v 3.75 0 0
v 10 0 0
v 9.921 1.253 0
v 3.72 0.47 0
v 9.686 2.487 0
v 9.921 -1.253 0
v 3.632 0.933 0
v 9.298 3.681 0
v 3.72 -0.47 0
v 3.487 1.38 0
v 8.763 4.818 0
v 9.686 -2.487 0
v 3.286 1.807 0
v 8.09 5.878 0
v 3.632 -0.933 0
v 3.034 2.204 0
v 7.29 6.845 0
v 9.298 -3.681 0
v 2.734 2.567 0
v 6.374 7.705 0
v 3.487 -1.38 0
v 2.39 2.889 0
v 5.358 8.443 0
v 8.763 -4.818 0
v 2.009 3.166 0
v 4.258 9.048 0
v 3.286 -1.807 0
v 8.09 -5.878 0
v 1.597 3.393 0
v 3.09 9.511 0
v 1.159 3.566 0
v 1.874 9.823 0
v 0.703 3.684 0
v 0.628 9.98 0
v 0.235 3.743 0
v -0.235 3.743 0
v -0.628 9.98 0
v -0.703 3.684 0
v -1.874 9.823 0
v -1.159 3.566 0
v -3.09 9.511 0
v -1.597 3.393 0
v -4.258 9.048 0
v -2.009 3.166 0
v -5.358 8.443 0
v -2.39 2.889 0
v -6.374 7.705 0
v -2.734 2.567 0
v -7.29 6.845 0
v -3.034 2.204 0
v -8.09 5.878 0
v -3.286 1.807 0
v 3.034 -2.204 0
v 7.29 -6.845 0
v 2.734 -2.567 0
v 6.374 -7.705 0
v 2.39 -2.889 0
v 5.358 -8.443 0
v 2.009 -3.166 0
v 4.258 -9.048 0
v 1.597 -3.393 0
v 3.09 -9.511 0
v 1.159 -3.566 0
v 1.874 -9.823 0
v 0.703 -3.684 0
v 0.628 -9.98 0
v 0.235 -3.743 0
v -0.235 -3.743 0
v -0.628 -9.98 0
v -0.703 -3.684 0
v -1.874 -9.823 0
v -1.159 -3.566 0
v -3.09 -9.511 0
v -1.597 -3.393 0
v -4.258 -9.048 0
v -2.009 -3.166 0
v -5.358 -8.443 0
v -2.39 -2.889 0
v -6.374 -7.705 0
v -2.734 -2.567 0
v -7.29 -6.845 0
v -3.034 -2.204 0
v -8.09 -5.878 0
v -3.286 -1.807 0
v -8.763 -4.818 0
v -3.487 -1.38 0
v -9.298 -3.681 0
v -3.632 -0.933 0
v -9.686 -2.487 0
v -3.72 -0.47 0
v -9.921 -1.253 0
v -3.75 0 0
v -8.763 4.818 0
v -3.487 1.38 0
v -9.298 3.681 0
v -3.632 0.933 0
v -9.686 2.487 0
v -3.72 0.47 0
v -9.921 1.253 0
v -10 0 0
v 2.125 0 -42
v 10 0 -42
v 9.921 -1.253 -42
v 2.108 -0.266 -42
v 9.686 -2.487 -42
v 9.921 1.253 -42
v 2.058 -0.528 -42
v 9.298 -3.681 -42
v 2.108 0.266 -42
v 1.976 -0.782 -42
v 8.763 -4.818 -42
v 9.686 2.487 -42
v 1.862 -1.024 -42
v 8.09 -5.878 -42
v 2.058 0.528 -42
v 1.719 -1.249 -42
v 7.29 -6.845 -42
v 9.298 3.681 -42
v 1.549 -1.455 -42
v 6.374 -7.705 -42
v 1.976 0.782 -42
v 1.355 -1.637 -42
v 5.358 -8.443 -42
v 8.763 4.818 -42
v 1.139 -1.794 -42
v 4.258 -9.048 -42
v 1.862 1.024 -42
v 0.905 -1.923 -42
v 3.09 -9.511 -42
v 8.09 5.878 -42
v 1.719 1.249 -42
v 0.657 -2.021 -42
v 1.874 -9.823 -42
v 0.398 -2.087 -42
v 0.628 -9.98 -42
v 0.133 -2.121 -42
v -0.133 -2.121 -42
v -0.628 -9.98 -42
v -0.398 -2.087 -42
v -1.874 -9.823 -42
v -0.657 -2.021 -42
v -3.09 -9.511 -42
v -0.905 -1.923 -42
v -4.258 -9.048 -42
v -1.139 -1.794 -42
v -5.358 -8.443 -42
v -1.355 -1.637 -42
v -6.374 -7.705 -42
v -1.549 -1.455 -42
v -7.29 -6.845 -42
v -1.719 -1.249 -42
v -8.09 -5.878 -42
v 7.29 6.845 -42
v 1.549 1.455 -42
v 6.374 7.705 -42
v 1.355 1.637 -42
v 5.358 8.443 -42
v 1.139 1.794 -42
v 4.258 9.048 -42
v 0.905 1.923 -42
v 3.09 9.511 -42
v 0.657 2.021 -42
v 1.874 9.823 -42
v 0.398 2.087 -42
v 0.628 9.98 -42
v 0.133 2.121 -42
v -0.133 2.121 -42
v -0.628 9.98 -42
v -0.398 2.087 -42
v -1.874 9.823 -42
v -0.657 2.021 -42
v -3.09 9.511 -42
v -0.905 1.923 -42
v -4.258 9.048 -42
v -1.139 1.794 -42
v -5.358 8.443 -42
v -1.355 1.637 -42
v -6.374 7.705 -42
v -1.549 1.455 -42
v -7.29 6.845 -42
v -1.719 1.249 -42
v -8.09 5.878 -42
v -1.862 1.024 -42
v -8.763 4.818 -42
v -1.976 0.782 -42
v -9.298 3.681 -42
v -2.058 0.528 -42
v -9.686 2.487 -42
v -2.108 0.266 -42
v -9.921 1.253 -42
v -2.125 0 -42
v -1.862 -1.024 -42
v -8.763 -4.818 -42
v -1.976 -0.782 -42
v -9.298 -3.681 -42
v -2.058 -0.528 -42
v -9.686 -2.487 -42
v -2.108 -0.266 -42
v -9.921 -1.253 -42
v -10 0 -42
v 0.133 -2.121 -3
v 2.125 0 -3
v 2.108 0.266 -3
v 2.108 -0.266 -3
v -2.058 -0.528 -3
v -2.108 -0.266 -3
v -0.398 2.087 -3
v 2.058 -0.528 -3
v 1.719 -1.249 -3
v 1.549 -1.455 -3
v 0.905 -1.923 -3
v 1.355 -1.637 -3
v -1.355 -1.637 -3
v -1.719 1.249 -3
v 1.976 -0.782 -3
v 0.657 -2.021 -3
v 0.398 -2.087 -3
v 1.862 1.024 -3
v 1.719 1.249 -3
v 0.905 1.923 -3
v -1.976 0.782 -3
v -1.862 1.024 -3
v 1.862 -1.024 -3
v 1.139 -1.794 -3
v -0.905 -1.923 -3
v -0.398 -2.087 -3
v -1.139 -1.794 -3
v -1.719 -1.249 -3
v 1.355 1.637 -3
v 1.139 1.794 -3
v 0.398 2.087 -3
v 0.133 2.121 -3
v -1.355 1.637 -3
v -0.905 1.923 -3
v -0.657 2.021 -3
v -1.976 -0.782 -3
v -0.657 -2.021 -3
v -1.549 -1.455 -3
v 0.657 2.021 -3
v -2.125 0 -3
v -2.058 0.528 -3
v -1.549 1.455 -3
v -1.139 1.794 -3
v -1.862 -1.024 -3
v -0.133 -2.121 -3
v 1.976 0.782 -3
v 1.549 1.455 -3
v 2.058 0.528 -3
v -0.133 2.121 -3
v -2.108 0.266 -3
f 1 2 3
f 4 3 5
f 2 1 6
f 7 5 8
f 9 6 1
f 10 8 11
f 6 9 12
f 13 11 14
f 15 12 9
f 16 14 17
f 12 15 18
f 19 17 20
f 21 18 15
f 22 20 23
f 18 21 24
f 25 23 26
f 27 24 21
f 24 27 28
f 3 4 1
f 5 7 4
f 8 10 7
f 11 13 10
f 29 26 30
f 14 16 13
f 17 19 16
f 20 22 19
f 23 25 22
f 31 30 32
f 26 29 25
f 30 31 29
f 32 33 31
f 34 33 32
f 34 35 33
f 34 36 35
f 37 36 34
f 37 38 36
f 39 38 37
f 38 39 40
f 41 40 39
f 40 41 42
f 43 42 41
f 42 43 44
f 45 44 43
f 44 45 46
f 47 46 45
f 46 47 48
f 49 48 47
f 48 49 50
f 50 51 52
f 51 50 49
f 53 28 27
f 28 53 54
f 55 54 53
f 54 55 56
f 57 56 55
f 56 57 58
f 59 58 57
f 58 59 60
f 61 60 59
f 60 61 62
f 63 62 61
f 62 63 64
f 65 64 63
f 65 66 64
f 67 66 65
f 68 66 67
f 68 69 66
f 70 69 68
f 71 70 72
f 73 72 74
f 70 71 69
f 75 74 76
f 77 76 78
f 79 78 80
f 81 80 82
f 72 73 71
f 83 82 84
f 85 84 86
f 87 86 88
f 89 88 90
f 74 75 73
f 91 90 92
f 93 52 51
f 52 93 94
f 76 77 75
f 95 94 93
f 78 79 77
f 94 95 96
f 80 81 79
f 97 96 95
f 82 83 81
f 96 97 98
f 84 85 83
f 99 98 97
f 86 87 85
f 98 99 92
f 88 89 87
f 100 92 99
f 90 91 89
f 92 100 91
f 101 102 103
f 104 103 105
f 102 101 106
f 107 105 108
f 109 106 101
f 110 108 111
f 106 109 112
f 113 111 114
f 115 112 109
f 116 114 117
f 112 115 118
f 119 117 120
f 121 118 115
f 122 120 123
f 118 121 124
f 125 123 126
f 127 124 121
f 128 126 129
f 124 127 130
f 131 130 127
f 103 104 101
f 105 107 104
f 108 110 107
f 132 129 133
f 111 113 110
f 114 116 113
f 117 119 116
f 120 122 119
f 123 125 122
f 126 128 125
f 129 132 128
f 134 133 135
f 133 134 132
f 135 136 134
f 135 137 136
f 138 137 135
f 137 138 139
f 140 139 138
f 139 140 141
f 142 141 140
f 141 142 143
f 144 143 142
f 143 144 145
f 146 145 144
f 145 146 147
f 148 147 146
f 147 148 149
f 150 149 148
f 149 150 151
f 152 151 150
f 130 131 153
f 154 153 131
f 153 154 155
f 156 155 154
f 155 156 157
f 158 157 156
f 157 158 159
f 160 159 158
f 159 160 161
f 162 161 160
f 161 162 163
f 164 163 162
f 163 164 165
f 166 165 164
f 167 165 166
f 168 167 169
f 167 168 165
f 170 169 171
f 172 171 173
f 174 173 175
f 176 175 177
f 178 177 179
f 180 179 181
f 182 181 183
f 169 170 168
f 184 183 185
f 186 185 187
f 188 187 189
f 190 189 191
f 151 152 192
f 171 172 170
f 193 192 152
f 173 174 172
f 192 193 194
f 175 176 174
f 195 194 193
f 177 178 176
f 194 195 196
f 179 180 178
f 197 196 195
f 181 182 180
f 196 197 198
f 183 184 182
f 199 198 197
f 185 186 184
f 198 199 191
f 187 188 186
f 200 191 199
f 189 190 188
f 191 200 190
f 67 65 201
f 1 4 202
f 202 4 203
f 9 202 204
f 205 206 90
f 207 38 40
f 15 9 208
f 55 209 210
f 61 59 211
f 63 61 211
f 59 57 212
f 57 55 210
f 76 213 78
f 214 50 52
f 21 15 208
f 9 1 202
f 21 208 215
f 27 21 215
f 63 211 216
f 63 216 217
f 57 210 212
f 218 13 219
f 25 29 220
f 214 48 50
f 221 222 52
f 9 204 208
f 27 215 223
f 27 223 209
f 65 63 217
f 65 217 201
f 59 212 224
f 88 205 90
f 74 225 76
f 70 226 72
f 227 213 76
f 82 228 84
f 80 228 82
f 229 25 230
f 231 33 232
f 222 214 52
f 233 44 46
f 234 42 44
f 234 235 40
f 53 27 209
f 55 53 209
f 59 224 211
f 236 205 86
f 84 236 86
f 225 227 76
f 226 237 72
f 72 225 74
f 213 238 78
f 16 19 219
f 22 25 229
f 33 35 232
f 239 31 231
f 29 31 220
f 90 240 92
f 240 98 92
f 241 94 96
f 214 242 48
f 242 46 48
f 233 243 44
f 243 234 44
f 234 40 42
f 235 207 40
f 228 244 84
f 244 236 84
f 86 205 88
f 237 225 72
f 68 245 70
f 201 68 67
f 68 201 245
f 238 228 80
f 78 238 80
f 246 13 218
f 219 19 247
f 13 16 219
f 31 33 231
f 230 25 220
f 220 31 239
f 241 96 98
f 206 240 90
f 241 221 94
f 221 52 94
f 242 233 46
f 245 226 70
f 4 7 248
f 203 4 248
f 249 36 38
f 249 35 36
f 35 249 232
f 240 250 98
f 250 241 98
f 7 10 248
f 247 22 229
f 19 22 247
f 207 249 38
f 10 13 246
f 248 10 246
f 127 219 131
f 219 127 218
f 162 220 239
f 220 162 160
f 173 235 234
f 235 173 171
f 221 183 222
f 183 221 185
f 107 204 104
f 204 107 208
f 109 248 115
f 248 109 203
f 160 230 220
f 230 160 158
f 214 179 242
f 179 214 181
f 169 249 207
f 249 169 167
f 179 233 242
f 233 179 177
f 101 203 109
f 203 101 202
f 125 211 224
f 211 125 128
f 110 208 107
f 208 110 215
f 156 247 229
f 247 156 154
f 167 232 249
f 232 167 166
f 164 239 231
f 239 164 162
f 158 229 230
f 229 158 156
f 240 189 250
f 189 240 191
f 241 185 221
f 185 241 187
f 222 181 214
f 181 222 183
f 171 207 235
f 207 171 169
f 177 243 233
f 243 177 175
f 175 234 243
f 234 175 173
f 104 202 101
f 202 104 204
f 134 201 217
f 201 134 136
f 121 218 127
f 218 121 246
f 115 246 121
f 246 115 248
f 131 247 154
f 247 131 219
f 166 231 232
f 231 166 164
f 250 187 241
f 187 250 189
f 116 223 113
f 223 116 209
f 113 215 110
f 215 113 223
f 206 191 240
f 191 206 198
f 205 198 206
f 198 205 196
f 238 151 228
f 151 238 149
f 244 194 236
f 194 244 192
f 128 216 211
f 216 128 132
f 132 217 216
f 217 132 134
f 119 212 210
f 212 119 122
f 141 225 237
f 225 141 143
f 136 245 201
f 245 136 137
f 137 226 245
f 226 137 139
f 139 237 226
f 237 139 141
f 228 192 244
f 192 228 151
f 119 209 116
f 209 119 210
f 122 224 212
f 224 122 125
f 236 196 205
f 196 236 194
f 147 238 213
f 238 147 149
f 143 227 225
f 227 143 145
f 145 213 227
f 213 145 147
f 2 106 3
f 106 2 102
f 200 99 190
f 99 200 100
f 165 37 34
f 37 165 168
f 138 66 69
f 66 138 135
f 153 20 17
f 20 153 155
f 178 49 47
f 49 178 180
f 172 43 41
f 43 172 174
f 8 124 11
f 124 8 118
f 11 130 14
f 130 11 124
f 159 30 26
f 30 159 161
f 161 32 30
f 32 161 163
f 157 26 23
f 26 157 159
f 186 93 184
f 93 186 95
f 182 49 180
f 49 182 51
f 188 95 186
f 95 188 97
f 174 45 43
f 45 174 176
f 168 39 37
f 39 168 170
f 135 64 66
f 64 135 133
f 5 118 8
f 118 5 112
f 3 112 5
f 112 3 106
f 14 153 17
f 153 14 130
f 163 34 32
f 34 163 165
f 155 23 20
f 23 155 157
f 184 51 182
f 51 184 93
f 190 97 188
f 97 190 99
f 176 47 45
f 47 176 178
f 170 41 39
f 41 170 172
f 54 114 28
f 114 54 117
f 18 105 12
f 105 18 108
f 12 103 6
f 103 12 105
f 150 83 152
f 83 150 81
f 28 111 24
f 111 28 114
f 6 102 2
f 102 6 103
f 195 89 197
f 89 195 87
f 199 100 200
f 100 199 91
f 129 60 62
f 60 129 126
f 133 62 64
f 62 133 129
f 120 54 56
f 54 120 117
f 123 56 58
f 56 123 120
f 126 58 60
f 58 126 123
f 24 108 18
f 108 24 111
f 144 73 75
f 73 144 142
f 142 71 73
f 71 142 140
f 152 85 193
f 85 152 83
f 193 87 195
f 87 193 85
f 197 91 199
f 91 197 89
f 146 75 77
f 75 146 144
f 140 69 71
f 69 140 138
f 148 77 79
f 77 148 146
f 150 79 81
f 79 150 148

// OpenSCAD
$fn = 50;


difference() {
	union() {
		translate(v = [0, 0, -42.0000000000]) {
			cylinder(h = 42, r = 10.0000000000);
		}
		cylinder(h = 0, r = 19.0000000000);
	}
	union() {
		translate(v = [0, 0, 0]) {
			rotate(a = [0, 0, 0]) {
				difference() {
					union() {
						#translate(v = [0, 0, -42.0000000000]) {
							cylinder(h = 42, r = 2.0000000000);
						}
						#translate(v = [0, 0, -3]) {
							cylinder(h = 3, r = 10.0000000000, r1 = 2.1250000000, r2 = 3.7500000000);
						}
						#translate(v = [0, 0, -42.0000000000]) {
							cylinder(h = 42, r = 2.1250000000);
						}
						#translate(v = [0, 0, -42.0000000000]) {
							cylinder(h = 42, r = 2.0000000000);
						}
					}
					union();
				}
			}
		}
	}
}
